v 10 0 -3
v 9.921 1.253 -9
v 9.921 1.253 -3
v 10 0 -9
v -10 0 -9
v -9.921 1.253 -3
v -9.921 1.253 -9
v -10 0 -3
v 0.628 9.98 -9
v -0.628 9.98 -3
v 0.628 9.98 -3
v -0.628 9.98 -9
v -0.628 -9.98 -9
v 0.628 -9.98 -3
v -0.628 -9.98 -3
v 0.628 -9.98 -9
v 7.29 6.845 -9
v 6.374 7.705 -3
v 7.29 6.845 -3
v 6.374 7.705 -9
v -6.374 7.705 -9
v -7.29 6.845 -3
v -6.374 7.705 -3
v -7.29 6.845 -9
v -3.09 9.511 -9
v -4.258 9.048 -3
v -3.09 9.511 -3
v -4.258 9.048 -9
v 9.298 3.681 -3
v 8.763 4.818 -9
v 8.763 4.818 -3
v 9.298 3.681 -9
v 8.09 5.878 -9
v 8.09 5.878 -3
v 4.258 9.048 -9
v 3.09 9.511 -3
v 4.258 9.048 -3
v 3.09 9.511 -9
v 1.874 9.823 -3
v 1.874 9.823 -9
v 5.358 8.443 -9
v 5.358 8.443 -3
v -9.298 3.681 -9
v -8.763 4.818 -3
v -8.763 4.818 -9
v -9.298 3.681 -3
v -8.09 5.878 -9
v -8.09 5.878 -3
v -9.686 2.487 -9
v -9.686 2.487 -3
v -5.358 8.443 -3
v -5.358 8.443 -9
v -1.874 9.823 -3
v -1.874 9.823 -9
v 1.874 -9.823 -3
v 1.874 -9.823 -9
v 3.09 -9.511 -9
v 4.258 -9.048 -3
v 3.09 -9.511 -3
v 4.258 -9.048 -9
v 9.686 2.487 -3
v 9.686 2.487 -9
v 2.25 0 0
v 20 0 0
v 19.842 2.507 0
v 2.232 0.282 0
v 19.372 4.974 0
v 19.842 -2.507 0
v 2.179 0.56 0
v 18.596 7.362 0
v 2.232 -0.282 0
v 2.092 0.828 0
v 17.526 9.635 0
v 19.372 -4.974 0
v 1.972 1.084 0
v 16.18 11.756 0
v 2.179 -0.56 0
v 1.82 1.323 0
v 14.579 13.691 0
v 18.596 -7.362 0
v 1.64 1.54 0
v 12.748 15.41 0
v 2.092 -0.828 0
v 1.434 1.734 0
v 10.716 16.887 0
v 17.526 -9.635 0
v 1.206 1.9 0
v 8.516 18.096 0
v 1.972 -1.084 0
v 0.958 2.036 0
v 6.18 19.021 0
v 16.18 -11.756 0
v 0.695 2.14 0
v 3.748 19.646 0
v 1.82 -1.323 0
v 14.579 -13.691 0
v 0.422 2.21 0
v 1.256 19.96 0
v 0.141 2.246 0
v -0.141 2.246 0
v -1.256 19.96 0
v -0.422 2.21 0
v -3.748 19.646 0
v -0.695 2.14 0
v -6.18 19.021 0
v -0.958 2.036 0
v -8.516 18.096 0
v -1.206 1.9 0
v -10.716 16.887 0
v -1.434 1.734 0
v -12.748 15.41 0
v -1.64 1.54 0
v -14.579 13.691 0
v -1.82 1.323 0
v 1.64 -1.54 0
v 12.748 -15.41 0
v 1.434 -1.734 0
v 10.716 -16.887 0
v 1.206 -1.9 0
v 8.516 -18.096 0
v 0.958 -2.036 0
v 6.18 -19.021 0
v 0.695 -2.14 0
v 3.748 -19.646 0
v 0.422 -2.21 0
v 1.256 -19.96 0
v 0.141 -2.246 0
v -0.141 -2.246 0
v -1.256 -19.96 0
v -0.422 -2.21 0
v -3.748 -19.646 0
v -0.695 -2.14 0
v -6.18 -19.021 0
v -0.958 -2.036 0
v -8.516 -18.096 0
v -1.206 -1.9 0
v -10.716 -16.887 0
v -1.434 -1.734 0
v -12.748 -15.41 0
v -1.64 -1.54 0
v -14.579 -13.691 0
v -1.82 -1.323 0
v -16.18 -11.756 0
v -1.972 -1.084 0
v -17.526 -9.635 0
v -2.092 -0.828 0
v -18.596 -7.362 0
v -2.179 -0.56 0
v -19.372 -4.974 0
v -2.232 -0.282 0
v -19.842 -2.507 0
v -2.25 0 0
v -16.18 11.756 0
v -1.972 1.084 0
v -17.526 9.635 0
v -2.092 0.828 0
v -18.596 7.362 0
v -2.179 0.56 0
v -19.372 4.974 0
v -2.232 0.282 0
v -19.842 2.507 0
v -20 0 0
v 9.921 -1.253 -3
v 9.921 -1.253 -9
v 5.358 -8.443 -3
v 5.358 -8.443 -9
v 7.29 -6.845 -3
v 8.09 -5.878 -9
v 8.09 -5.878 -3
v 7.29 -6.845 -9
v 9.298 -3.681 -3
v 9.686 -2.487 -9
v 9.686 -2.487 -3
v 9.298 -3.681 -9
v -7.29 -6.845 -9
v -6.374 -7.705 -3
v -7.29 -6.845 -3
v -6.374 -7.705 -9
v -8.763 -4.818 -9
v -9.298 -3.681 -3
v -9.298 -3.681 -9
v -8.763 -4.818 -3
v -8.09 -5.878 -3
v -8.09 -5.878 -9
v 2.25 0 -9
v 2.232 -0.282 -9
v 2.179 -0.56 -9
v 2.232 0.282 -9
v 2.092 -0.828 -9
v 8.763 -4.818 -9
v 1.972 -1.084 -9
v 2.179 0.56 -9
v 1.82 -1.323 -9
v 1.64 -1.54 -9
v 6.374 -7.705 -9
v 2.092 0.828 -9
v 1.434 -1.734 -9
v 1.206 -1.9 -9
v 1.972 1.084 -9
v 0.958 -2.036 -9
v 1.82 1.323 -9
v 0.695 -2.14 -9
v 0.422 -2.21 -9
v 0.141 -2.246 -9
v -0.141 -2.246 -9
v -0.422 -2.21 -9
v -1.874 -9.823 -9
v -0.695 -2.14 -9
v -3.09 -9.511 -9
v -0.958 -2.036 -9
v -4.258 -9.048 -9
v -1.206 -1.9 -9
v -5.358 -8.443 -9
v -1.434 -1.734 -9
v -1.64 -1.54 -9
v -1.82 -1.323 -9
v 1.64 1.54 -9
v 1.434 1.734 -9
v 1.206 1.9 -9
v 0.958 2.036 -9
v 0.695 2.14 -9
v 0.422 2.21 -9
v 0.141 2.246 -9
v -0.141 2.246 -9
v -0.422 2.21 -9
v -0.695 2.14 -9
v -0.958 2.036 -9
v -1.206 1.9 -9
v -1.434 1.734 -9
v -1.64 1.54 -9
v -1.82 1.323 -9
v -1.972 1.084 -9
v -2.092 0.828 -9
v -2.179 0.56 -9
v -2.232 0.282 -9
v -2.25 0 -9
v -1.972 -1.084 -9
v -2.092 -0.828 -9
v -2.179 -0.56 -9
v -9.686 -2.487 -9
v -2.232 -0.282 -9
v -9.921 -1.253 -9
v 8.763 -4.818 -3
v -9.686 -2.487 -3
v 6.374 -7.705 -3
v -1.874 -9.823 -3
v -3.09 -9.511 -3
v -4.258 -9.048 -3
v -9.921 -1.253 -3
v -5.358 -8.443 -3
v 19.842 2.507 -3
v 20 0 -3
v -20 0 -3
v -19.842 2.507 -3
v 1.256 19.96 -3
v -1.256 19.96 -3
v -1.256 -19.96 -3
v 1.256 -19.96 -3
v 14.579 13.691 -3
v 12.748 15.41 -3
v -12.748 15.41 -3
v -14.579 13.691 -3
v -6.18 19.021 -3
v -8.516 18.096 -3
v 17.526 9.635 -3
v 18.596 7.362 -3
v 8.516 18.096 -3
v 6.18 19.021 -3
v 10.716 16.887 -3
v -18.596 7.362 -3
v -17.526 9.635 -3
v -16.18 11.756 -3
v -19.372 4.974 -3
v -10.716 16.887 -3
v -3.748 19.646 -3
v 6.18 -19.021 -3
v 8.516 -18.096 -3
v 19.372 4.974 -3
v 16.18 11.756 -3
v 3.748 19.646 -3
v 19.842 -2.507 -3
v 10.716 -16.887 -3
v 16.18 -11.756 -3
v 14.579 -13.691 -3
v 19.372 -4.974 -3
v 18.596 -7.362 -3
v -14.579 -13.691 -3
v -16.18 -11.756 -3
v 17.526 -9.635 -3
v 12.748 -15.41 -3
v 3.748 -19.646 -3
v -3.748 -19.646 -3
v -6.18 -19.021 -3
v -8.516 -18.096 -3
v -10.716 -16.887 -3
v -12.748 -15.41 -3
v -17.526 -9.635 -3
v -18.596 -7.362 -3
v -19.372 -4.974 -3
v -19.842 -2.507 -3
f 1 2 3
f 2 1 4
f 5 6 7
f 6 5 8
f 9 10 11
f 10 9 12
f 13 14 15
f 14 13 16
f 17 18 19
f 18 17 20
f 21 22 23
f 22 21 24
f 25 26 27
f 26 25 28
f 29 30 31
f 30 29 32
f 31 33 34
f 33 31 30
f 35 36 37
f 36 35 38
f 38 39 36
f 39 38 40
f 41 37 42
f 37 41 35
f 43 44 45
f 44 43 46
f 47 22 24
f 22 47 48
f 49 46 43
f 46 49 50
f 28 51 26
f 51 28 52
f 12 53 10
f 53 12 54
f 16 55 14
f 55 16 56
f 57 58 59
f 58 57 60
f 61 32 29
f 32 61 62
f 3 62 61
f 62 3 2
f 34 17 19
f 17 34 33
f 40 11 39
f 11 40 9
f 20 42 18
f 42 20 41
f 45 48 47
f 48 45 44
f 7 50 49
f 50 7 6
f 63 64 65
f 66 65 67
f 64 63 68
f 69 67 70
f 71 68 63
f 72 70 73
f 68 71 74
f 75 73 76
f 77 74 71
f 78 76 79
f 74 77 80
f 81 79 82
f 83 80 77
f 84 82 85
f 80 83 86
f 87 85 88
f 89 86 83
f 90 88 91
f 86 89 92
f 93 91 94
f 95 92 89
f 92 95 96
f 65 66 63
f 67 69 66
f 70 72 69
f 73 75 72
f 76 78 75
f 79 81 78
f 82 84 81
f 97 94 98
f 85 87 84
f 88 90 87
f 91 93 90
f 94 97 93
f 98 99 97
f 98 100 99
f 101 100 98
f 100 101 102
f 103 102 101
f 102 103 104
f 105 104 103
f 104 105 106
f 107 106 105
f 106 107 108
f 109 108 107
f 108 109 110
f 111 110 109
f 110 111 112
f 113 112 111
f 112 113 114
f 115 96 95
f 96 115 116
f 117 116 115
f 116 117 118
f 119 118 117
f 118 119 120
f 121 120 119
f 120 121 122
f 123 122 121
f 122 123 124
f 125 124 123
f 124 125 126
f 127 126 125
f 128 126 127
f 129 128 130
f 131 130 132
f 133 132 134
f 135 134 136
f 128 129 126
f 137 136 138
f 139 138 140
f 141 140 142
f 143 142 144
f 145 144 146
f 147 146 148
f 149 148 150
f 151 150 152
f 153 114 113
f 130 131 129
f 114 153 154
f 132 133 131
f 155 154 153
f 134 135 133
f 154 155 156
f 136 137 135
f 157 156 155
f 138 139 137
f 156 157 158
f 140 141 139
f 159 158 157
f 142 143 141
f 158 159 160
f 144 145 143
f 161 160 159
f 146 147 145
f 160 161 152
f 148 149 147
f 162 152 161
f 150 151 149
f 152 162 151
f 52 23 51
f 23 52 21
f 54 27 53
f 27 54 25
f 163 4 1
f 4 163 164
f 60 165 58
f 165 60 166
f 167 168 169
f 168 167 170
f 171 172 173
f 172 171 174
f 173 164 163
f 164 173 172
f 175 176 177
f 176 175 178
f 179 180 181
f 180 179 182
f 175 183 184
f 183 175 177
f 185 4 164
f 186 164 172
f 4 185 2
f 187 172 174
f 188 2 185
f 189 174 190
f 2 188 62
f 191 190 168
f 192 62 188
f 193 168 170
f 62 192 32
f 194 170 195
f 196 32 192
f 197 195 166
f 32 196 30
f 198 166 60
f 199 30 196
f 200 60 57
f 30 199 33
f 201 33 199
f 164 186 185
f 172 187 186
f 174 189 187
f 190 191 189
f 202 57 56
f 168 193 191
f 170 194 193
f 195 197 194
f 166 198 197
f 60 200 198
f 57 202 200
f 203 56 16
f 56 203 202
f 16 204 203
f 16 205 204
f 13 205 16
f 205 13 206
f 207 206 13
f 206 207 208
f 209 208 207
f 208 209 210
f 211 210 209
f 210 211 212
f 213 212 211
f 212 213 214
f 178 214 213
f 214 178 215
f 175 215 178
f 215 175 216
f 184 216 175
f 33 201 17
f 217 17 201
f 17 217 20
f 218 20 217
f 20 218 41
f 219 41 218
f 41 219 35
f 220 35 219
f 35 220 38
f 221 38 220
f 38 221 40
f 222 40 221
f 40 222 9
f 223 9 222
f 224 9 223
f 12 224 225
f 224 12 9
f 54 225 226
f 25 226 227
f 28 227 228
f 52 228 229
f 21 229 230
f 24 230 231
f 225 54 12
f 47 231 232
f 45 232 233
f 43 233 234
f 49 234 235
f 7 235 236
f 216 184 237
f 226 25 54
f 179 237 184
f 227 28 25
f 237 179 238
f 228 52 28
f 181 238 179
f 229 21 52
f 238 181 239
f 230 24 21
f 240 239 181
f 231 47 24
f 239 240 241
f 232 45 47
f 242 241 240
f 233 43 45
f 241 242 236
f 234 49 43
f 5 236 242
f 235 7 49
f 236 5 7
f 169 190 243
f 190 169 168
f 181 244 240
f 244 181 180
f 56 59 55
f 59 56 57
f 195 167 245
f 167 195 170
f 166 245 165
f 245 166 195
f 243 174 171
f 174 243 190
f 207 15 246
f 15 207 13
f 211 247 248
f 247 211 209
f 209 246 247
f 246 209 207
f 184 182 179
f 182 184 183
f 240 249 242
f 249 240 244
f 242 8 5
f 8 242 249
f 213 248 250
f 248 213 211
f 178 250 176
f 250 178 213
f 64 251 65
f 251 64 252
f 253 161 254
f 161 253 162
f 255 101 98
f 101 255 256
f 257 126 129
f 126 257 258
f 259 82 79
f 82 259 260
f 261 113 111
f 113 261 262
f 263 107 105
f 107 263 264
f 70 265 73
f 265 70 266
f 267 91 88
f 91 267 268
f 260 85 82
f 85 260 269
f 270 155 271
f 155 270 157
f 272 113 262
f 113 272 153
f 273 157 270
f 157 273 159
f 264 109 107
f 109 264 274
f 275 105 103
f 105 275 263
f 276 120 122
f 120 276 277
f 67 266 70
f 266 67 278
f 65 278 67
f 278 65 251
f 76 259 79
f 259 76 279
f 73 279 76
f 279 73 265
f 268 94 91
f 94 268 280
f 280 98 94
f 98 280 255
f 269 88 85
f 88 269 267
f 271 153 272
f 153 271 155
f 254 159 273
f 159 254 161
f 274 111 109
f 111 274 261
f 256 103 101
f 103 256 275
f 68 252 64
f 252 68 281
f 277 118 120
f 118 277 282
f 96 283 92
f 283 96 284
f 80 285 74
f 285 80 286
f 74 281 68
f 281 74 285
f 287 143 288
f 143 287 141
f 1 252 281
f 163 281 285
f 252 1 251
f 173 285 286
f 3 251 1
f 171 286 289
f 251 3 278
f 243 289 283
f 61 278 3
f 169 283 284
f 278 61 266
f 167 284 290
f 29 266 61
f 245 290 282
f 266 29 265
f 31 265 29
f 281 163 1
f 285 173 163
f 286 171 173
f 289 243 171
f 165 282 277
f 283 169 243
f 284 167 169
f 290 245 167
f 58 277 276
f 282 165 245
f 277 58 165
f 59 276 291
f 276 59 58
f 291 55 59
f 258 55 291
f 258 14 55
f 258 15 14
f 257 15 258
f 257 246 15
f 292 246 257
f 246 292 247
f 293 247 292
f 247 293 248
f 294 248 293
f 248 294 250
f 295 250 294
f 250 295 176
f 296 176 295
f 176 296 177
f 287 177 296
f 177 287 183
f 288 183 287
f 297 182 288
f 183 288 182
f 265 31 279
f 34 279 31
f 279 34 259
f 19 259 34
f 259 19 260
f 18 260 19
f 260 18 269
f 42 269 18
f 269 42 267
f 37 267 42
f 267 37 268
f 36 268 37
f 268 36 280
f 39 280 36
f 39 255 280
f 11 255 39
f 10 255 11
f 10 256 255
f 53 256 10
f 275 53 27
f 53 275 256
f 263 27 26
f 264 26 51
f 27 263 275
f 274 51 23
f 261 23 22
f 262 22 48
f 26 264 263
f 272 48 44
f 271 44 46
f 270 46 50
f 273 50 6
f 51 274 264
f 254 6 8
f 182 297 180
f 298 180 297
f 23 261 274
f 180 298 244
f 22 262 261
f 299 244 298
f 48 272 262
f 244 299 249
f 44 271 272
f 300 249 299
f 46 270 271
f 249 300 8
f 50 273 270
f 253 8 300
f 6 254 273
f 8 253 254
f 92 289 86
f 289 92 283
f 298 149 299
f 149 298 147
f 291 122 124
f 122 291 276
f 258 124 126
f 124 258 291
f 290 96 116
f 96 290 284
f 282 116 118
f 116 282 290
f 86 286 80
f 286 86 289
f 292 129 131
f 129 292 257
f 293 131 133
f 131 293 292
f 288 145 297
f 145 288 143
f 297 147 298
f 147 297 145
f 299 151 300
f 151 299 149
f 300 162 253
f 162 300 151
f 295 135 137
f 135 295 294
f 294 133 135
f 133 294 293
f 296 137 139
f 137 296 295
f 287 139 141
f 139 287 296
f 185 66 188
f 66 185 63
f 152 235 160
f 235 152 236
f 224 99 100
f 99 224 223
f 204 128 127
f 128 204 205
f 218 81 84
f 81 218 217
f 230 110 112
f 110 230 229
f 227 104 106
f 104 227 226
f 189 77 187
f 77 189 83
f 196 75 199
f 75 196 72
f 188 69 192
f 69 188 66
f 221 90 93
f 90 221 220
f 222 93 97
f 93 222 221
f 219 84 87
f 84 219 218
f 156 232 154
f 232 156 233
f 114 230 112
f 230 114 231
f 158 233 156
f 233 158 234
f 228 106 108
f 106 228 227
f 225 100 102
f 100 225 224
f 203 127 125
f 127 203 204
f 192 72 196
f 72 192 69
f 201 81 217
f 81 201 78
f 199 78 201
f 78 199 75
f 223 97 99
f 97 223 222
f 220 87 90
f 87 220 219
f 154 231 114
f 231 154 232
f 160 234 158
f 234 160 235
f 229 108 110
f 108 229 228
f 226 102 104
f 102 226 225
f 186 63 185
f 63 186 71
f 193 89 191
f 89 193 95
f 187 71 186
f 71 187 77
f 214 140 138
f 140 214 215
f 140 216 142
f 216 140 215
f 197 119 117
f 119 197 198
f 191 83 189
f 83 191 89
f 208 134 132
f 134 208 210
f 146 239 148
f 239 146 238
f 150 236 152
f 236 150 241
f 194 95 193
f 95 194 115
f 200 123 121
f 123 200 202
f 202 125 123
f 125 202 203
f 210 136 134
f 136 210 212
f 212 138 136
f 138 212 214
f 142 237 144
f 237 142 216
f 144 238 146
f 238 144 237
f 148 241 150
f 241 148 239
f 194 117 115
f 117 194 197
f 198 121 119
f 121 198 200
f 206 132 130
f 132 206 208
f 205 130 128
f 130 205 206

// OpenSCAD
$fn = 50;


difference() {
	union() {
		translate(v = [0, 0, -9.0000000000]) {
			cylinder(h = 9, r = 10.0000000000);
		}
		translate(v = [0, 0, -3.0000000000]) {
			cylinder(h = 3, r = 20.0000000000);
		}
	}
	union() {
		#translate(v = [0, 0, -9]) {
			cylinder(h = 9, r = 2.2500000000);
		}
	}
}
